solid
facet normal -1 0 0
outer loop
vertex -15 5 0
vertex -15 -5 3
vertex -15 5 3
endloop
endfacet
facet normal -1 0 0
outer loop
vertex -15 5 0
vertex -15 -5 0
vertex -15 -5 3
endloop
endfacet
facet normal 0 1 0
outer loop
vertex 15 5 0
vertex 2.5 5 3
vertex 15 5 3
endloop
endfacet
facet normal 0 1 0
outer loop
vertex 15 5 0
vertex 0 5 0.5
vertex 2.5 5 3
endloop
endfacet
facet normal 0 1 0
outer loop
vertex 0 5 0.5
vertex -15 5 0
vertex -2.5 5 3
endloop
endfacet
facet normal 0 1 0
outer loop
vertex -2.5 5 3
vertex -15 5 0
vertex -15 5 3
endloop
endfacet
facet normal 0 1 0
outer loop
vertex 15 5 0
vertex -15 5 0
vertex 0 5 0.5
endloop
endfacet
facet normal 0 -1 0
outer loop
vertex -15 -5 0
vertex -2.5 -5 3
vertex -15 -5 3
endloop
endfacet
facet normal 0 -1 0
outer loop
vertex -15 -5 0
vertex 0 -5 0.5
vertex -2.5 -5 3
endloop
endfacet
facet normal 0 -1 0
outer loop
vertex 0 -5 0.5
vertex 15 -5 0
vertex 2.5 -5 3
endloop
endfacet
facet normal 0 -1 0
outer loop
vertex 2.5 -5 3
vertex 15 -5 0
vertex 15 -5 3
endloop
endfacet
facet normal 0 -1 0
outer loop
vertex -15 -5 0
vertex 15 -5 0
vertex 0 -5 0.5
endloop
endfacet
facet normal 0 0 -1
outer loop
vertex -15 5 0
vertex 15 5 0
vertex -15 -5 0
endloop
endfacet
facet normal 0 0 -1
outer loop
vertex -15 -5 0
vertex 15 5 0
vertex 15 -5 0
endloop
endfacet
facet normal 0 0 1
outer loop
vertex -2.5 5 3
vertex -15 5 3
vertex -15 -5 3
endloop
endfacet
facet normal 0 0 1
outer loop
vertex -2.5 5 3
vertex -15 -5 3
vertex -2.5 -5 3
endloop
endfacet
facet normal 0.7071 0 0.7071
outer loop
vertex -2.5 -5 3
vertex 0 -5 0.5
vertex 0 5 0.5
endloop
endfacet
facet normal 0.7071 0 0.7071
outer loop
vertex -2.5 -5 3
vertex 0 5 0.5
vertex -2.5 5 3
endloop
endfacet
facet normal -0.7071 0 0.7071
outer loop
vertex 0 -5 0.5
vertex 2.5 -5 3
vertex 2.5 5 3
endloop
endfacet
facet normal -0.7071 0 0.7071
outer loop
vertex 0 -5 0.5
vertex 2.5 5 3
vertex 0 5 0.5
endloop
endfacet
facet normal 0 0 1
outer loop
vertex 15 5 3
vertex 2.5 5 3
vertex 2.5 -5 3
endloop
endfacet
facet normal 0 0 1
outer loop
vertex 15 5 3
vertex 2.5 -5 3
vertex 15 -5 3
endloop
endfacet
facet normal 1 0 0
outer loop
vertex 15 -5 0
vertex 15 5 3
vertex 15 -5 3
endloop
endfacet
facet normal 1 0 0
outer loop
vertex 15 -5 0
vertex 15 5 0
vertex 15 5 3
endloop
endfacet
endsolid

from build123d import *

# Parameters (mm, degrees)
SKETCH_W     = 30
SKETCH_H     = 10
PAD_DEPTH    = 3
POCKET_DEPTH = 10.001


with BuildPart() as part:
    # Sketch → Pad (new body)
    with BuildSketch(Plane.XY):
        Rectangle(SKETCH_W, SKETCH_H)
    extrude(amount=PAD_DEPTH)

    # Sketch001 (on Face2 of Pad) → Pocket (cut, through all)
    with BuildSketch(Plane.XZ.offset(5)):
        Polygon((0, 0.5), (-2.5, 3), (2.5, 3), align=None)
    extrude(amount=-POCKET_DEPTH, mode=Mode.SUBTRACT)


solid = part.part
